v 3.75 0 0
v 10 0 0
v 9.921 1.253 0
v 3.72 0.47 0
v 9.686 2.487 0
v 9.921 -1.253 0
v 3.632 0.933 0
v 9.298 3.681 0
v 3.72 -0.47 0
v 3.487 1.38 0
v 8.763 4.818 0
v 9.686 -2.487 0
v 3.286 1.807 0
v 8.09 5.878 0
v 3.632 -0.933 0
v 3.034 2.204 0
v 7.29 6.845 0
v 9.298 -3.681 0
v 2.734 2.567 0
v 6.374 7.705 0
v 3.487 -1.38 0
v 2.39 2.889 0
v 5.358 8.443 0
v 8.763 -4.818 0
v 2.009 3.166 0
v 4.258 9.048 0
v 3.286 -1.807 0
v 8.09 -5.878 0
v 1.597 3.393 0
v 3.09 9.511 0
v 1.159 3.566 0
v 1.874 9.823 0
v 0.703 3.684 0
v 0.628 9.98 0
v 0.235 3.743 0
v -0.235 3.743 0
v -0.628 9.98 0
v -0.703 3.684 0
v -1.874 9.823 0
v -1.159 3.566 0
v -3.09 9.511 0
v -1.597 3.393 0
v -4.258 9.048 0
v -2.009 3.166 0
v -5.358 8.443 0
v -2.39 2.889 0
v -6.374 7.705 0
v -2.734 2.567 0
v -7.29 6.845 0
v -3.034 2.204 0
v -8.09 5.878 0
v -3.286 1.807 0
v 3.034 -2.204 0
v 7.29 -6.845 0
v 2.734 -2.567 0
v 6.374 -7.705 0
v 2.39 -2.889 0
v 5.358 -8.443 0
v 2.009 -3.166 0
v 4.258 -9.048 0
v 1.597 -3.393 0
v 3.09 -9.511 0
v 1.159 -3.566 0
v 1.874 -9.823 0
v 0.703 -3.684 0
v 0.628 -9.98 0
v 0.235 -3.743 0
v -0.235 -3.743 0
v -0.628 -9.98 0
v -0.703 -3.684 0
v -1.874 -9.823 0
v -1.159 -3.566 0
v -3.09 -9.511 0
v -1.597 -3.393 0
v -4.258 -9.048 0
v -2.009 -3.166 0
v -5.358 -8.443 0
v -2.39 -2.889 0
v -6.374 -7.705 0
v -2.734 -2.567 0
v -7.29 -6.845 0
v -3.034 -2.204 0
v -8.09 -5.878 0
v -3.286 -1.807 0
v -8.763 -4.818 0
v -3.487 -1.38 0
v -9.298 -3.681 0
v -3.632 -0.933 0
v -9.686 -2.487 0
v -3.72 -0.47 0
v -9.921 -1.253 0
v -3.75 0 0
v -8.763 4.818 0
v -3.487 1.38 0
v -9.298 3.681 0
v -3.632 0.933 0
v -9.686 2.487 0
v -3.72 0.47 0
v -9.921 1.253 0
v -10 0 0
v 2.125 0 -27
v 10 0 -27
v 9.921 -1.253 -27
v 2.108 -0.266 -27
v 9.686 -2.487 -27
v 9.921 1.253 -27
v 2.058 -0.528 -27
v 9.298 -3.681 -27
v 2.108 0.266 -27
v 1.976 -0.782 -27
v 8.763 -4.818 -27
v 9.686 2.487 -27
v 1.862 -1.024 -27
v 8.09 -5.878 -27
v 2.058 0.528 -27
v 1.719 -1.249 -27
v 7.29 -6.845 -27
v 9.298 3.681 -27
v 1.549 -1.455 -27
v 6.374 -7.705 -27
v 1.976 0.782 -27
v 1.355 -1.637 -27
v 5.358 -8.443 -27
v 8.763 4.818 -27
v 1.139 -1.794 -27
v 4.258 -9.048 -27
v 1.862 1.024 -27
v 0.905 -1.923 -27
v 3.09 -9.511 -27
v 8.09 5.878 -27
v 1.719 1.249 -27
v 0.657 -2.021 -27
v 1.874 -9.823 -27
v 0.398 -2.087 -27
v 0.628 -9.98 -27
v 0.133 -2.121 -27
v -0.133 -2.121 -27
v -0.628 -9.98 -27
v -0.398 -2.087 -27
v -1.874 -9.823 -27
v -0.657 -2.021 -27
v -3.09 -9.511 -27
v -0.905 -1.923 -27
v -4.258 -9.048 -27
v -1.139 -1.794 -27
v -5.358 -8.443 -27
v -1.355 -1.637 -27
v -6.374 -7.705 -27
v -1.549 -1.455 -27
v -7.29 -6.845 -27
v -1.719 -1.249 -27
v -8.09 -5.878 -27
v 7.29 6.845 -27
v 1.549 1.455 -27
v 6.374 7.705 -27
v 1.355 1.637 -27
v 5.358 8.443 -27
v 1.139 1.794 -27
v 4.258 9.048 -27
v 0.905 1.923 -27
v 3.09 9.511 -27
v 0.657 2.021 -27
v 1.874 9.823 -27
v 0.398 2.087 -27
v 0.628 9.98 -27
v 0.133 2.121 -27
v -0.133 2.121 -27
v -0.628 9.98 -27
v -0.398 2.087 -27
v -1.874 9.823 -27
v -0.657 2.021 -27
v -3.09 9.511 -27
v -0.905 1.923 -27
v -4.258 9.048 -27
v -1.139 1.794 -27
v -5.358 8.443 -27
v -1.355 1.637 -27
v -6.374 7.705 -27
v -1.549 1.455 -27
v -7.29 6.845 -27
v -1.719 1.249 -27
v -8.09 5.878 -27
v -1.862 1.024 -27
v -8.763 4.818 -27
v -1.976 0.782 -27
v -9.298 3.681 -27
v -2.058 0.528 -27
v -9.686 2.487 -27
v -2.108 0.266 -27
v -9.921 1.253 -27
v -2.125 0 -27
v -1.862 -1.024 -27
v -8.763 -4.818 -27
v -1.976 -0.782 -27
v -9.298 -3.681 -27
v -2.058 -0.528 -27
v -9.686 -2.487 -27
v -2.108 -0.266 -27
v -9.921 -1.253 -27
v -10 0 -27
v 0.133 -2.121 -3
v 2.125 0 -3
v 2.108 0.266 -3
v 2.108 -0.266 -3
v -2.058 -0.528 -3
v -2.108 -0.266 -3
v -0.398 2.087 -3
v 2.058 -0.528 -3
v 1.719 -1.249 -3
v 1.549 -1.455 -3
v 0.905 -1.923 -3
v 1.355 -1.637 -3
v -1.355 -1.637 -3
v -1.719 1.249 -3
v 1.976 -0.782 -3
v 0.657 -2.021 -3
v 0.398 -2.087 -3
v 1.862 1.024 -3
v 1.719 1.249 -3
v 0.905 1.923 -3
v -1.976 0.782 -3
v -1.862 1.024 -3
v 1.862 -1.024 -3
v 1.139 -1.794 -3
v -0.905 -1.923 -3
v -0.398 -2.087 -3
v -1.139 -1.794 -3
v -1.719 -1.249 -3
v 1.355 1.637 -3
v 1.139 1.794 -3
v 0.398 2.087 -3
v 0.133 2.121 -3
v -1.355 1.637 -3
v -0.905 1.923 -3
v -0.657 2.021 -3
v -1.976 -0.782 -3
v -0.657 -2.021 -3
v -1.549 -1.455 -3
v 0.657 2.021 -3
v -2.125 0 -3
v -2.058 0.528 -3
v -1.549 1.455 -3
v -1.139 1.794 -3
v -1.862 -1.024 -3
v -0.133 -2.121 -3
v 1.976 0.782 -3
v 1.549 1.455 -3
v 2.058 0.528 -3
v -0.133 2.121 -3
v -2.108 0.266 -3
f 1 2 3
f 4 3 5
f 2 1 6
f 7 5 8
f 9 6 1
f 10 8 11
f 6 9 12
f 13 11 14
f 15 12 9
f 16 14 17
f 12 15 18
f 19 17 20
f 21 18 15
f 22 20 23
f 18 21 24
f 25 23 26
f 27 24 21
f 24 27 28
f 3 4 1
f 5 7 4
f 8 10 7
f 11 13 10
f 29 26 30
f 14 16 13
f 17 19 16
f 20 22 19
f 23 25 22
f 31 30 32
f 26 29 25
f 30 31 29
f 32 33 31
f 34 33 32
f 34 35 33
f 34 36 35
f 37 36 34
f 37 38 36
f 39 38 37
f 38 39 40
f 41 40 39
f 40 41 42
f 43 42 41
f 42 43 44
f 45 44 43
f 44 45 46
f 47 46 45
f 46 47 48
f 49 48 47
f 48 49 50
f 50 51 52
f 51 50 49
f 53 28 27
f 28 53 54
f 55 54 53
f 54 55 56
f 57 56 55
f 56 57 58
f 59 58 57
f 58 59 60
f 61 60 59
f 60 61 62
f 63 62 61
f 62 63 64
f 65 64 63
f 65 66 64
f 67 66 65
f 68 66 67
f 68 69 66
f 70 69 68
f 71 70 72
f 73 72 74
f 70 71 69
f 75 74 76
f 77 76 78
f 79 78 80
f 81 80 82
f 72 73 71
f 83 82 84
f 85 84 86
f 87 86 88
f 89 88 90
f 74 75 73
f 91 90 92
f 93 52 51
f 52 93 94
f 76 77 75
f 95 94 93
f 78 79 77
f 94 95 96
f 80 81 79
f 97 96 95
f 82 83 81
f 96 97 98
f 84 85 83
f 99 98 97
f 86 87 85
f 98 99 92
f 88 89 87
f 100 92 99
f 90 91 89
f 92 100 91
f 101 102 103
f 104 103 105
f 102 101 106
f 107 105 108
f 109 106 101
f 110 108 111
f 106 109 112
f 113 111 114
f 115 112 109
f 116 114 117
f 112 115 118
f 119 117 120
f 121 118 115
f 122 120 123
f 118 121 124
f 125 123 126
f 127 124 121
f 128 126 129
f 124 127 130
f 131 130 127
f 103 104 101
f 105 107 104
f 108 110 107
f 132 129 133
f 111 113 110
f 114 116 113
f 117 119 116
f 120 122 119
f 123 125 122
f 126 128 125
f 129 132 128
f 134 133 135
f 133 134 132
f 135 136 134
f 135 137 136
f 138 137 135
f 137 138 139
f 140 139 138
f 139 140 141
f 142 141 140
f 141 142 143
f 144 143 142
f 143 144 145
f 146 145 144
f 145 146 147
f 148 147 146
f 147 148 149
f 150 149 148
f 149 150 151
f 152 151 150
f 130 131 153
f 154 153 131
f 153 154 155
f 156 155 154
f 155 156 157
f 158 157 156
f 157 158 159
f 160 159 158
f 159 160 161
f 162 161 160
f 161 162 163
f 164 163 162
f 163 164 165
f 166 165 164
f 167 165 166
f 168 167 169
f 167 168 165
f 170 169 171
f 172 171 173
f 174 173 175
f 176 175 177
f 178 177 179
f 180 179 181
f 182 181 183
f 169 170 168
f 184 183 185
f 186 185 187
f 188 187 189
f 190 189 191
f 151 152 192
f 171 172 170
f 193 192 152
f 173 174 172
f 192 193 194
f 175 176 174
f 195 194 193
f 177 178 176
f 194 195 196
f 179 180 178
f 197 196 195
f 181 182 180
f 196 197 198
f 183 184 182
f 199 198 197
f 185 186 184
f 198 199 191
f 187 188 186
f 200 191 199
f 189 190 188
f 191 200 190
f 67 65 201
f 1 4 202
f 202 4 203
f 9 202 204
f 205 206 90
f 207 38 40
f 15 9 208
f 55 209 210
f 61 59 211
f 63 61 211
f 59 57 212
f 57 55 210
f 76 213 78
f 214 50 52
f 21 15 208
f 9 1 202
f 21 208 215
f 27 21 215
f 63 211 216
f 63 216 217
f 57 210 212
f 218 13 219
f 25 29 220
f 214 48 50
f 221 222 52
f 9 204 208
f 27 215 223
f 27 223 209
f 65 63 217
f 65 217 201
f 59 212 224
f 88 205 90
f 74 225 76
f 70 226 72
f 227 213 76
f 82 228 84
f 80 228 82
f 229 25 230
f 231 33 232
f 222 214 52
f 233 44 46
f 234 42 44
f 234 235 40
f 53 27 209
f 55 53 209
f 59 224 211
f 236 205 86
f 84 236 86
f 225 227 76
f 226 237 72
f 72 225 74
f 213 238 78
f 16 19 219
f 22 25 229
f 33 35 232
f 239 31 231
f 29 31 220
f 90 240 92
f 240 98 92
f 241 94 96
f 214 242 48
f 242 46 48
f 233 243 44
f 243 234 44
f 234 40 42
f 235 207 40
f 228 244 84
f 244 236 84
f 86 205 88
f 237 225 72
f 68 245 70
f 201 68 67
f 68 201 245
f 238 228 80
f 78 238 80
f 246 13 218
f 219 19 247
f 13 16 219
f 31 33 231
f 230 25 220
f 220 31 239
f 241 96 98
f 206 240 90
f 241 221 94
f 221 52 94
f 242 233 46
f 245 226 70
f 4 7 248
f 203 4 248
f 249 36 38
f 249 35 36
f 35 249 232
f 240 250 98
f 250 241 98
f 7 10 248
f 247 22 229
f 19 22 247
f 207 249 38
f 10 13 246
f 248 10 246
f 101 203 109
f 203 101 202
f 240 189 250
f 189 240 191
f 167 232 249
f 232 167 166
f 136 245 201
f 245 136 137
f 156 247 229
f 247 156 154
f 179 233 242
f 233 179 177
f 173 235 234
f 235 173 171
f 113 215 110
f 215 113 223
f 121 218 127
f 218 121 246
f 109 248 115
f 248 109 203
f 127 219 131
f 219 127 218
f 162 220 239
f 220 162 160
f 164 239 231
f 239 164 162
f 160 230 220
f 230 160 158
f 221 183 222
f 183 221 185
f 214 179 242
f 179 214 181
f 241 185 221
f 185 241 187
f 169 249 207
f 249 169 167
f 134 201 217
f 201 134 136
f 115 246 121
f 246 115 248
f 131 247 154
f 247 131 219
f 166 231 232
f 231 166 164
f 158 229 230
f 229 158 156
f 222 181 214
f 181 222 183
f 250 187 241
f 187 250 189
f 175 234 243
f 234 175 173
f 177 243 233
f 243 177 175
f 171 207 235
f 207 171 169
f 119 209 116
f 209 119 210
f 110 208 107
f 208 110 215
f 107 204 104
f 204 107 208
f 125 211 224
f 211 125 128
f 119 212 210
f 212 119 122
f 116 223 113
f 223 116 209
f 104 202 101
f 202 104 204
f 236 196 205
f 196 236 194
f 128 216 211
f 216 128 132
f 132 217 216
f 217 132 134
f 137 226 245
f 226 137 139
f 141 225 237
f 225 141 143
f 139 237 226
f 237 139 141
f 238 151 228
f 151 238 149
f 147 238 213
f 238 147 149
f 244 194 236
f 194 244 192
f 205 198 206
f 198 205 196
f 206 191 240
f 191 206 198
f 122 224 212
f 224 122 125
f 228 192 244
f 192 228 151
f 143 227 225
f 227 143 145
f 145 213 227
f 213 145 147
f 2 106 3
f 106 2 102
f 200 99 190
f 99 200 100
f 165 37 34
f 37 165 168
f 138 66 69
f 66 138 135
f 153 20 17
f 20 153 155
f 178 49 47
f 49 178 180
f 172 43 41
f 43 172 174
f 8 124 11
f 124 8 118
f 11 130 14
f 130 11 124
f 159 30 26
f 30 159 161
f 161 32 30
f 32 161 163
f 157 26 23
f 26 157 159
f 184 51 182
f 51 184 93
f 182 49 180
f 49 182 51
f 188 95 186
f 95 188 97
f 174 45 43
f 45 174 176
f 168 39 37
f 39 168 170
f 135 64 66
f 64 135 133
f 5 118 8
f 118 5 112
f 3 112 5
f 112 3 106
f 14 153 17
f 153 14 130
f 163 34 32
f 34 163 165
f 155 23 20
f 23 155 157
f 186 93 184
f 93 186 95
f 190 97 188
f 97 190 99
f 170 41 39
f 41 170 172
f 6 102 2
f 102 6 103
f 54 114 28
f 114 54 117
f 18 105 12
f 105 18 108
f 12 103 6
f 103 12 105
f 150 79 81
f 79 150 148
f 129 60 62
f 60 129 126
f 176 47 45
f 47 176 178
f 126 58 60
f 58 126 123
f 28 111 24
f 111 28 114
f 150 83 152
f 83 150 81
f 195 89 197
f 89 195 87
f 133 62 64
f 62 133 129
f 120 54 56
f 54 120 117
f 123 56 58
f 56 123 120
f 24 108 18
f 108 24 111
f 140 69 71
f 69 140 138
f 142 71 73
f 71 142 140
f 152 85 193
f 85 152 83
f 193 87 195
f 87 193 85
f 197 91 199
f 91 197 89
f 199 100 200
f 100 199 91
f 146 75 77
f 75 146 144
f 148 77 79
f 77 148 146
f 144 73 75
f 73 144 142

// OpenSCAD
$fn = 50;


difference() {
	union() {
		translate(v = [0, 0, -27.0000000000]) {
			cylinder(h = 27, r = 10.0000000000);
		}
		cylinder(h = 0, r = 16.0000000000);
	}
	union() {
		translate(v = [0, 0, 0]) {
			rotate(a = [0, 0, 0]) {
				difference() {
					union() {
						#translate(v = [0, 0, -27.0000000000]) {
							cylinder(h = 27, r = 2.0000000000);
						}
						#translate(v = [0, 0, -3]) {
							cylinder(h = 3, r = 10.0000000000, r1 = 2.1250000000, r2 = 3.7500000000);
						}
						#translate(v = [0, 0, -27.0000000000]) {
							cylinder(h = 27, r = 2.1250000000);
						}
						#translate(v = [0, 0, -27.0000000000]) {
							cylinder(h = 27, r = 2.0000000000);
						}
					}
					union();
				}
			}
		}
	}
}
